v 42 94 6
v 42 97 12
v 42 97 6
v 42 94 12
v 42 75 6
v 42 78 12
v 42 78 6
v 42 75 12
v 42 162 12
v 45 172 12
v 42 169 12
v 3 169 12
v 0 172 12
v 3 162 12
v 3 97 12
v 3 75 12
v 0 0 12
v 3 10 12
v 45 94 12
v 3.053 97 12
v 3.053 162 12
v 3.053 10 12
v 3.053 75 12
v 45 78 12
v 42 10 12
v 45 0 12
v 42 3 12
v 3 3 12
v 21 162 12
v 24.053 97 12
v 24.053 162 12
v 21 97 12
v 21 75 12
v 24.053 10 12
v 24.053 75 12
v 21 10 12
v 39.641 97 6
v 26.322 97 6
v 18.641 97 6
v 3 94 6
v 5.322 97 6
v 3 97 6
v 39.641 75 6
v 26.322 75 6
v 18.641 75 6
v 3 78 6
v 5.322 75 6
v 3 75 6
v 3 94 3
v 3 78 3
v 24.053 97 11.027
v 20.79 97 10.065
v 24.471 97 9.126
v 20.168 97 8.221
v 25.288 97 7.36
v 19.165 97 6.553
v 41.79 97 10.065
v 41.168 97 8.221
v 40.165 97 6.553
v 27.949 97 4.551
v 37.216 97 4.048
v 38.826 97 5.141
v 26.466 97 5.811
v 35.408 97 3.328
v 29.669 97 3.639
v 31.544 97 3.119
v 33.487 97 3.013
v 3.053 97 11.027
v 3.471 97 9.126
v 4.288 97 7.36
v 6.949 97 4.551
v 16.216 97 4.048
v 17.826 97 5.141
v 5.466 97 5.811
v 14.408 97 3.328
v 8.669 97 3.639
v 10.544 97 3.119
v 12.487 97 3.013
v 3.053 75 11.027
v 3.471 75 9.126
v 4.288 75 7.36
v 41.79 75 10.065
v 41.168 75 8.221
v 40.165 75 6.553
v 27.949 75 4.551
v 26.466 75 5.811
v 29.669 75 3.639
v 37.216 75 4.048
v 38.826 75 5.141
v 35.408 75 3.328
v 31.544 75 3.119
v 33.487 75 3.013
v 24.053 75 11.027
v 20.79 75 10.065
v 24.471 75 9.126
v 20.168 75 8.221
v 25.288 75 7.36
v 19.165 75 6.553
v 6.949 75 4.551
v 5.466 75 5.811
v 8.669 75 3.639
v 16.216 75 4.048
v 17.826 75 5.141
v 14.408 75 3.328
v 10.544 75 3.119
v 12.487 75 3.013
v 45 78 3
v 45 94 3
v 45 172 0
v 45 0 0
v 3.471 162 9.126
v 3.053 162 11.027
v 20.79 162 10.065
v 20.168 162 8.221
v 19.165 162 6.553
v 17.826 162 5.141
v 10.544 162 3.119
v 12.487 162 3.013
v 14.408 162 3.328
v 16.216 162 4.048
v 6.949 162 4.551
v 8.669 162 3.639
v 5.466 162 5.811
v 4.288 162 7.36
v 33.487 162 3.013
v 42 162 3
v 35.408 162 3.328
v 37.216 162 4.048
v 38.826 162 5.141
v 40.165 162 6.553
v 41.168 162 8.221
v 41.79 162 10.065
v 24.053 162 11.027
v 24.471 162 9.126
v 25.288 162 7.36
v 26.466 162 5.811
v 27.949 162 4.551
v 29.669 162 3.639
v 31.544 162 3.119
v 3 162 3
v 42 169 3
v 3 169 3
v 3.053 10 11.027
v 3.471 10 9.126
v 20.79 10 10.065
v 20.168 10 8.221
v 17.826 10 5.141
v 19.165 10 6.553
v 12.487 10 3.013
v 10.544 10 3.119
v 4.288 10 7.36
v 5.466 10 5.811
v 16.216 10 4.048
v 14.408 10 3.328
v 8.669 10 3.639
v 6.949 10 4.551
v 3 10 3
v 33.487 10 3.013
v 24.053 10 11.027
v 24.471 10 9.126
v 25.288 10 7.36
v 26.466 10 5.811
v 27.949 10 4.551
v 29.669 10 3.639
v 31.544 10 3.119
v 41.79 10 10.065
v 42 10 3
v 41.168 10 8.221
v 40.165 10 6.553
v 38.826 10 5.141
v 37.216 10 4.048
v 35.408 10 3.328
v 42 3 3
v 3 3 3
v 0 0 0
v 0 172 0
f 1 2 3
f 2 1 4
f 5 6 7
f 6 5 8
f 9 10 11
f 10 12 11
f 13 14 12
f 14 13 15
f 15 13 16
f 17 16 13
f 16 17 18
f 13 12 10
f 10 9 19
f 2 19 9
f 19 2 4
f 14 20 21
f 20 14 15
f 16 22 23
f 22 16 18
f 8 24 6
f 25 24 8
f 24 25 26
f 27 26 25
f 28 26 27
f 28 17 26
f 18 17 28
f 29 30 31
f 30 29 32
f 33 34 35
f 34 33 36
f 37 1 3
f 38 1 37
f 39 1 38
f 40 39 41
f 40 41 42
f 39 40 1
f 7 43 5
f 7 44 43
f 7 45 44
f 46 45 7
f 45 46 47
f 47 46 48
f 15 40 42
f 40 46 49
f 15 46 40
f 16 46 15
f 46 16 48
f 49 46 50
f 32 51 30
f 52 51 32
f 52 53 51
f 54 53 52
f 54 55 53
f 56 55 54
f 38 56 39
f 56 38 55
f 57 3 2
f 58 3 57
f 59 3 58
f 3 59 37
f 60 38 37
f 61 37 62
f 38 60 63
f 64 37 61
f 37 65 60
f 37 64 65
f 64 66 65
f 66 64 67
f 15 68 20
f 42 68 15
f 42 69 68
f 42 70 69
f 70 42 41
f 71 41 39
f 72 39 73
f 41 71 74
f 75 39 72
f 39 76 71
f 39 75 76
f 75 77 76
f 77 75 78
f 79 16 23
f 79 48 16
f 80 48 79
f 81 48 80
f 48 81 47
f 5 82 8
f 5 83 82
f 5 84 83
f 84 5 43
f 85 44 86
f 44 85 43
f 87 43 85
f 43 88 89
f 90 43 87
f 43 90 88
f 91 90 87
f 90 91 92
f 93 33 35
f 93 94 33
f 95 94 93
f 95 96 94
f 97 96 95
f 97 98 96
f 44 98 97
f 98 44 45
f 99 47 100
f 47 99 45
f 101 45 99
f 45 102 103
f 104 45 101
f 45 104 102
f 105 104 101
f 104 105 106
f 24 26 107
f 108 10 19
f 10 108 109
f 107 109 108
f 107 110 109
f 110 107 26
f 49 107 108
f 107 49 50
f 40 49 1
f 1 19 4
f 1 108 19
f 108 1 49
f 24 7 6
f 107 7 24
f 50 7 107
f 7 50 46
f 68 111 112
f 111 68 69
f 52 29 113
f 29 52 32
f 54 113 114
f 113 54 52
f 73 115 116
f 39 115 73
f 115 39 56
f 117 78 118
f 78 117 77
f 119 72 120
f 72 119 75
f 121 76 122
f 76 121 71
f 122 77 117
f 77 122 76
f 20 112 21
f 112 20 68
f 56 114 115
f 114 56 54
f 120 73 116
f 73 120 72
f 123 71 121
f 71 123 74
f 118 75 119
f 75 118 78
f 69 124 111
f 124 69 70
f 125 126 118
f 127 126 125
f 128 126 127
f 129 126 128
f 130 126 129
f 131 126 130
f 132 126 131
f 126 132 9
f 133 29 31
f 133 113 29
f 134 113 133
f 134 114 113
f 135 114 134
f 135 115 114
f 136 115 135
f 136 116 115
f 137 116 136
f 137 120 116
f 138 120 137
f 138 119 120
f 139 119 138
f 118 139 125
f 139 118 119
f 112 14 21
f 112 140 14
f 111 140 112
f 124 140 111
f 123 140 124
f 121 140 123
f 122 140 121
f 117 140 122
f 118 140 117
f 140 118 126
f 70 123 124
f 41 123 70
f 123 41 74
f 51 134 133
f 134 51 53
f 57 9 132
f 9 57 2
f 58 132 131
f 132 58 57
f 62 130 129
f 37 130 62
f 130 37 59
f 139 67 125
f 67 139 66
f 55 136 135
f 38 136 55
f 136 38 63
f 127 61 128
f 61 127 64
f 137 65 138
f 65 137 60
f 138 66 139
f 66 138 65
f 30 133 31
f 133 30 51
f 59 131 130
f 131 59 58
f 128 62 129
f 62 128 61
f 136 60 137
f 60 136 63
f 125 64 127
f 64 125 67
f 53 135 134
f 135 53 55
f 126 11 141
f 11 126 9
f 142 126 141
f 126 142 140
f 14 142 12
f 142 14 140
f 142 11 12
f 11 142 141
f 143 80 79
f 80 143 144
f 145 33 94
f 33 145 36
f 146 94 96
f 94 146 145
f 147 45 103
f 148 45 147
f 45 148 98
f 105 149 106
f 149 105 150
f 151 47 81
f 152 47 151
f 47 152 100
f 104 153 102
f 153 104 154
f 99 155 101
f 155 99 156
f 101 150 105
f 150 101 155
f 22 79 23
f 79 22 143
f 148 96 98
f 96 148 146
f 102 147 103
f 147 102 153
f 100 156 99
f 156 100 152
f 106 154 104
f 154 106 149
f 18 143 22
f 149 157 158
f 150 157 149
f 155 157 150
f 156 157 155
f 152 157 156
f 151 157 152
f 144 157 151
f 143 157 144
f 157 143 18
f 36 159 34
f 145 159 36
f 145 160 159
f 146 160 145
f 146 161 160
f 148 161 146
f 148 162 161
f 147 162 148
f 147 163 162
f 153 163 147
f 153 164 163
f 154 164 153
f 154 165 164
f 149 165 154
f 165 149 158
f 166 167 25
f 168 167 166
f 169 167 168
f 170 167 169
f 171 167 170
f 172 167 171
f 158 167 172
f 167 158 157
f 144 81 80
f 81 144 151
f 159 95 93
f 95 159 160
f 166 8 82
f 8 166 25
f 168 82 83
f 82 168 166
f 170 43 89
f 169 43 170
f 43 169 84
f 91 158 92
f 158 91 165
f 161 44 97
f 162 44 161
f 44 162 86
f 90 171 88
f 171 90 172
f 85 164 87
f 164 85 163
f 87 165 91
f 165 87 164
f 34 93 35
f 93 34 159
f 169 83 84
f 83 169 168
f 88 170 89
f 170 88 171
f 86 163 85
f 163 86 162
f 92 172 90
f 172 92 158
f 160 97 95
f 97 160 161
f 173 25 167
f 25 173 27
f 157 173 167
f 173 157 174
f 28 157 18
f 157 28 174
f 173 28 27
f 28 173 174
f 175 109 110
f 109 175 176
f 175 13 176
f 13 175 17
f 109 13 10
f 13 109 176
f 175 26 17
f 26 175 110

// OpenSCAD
cell_length = 65;
cell_diameter = 18;
cell_radius = cell_diameter/2;
wall_thickness = 3;
solder_space = 7;
spacing = 16;
height = 12;
module _18650() {
color("lightgreen")
translate([cell_radius, 0, cell_radius])rotate([270,0,0])cylinder(cell_length, d=cell_diameter);
}
difference(){
	cube([2*(wall_thickness+cell_diameter)+wall_thickness,
		  4*wall_thickness+2*solder_space+2*cell_length+spacing,
		  height
	]);
	// translate everything within the box-walls
	translate([wall_thickness, wall_thickness, wall_thickness]){
		cube([2*cell_diameter+wall_thickness, solder_space, height-wall_thickness]);
		translate([0, solder_space, 0]){
			_18650();
			translate([wall_thickness+cell_diameter, 0, 0])_18650();
			translate([0, cell_length, 0]){
				translate([0, 0, wall_thickness])cube([2*cell_diameter+wall_thickness, spacing+2*wall_thickness, height-2*wall_thickness]);
				translate([0, wall_thickness, 0])cube([2*cell_diameter+2*wall_thickness, spacing, height-wall_thickness]);
			}
			translate([0, cell_length+wall_thickness+spacing+wall_thickness, 0]){
				_18650();
				translate([wall_thickness+cell_diameter, 0, 0])_18650();
				translate([0, cell_length, 0]){
					cube([2*cell_diameter+wall_thickness, solder_space, height-wall_thickness]);
				}
			}
		}
	}
}
